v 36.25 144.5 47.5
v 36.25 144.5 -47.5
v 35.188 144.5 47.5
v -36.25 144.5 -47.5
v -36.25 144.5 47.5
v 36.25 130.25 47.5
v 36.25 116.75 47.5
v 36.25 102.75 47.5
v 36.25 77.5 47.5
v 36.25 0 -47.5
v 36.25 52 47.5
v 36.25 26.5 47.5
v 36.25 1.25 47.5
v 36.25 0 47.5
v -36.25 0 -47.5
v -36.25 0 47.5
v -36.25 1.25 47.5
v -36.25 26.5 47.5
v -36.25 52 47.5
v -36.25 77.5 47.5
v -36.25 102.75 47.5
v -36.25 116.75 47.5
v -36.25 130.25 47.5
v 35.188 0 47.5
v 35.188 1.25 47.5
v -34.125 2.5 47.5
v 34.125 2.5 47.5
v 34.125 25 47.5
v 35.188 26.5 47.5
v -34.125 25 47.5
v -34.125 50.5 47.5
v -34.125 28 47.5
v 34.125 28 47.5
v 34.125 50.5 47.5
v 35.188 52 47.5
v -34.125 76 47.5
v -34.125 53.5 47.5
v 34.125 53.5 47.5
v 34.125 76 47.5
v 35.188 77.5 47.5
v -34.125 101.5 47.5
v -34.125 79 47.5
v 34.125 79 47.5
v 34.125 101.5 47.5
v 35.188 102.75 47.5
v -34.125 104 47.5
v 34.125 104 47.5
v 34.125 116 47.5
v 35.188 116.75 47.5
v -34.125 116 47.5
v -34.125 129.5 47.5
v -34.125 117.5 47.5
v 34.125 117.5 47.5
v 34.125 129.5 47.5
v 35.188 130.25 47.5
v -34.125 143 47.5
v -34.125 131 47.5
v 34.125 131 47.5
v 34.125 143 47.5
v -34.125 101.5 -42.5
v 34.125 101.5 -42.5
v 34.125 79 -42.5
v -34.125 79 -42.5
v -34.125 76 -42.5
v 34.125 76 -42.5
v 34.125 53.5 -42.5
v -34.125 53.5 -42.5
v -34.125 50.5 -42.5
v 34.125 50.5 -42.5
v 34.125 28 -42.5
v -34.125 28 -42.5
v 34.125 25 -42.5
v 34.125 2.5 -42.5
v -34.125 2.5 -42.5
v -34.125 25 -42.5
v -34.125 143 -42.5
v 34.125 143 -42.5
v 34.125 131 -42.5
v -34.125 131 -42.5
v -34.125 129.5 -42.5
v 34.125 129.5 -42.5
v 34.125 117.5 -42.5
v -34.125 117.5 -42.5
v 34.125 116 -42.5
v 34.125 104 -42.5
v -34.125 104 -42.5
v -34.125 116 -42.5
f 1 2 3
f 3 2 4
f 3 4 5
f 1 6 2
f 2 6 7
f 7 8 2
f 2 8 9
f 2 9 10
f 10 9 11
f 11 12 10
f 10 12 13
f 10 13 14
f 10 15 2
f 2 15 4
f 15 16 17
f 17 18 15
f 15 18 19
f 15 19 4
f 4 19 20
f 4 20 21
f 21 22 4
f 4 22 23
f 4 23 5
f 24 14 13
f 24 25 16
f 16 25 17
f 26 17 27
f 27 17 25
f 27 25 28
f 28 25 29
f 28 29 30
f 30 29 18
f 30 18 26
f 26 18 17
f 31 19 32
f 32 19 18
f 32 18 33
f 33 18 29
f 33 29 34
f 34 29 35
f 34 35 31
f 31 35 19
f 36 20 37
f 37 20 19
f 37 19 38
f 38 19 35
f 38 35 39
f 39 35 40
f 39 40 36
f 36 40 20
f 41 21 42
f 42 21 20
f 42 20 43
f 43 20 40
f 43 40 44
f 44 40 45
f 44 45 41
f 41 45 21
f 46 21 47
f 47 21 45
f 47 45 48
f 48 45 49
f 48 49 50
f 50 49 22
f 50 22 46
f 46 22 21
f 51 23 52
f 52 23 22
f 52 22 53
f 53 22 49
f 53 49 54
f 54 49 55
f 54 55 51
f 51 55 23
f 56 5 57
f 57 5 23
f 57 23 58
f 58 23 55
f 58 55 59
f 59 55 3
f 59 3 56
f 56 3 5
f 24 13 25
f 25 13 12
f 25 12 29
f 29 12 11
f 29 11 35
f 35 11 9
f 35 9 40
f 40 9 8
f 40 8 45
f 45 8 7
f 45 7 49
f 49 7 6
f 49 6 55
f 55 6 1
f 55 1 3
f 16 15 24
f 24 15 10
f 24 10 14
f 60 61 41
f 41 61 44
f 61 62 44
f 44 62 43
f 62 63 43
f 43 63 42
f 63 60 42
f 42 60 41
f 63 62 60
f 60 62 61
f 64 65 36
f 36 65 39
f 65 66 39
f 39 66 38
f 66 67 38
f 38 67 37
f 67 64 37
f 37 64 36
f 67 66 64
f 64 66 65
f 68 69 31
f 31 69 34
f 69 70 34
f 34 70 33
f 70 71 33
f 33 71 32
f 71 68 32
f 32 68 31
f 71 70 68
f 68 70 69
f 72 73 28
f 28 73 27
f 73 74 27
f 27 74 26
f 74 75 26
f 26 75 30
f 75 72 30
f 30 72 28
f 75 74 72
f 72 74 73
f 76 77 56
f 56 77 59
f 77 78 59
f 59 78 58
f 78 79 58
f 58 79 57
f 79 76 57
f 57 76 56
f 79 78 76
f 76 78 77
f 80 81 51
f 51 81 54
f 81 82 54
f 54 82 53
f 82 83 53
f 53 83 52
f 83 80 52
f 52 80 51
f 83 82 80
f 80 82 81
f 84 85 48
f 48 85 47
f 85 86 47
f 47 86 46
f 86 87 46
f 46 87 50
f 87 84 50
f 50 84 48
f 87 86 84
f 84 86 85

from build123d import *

# Parameters (mm, degrees)
SKETCH1_W           = 72.5
SKETCH1_H           = 95
BOSS_EXTRUDE1_DEPTH = 104.5
SKETCH2_W           = 68.25
SKETCH2_H           = 22.5
CUT_EXTRUDE1_DEPTH  = 90
SKETCH3_W           = 72.5
SKETCH3_H           = 95
BOSS_EXTRUDE2_DEPTH = 175.5
SKETCH4_W           = 68.25
SKETCH4_H           = 12
CUT_EXTRUDE3_DEPTH  = 90


with BuildPart() as part:
    # Sketch1 → Boss-Extrude1 (new body)
    with BuildSketch(Plane(origin=(0, 0, 0), x_dir=(1, 0, 0), z_dir=(0, 1, 0))):
        Rectangle(SKETCH1_W, SKETCH1_H)
    extrude(amount=BOSS_EXTRUDE1_DEPTH)

    # Sketch2 → Cut-Extrude1 (cut)
    with BuildSketch(Plane.XY.offset(47.5)):
        with Locations((0, 13.75)):
            Rectangle(SKETCH2_W, SKETCH2_H)
        with Locations((0, 39.25)):
            Rectangle(SKETCH2_W, SKETCH2_H)
        with Locations((0, 64.75)):
            Rectangle(SKETCH2_W, SKETCH2_H)
        with Locations((0, 90.25)):
            Rectangle(SKETCH2_W, SKETCH2_H)
    extrude(amount=-CUT_EXTRUDE1_DEPTH, mode=Mode.SUBTRACT)

    # Sketch3 → Boss-Extrude2 (add)
    with BuildSketch(Plane(origin=(0, 104.5, 0), x_dir=(1, 0, 0), z_dir=(0, 1, 0))):
        Rectangle(SKETCH3_W, SKETCH3_H)
    extrude(amount=BOSS_EXTRUDE2_DEPTH)

    # Sketch4 → Cut-Extrude3 (cut)
    with BuildSketch(Plane.XY.offset(47.5)):
        with Locations((0, 110)):
            Rectangle(SKETCH4_W, SKETCH4_H)
        with Locations((0, 123.5)):
            Rectangle(SKETCH4_W, SKETCH4_H)
        with Locations((0, 137)):
            Rectangle(SKETCH4_W, SKETCH4_H)
        with Locations((0, 150.5)):
            Rectangle(SKETCH4_W, SKETCH4_H)
        with Locations((0, 164)):
            Rectangle(SKETCH4_W, SKETCH4_H)
        with Locations((0, 177.5)):
            Rectangle(SKETCH4_W, SKETCH4_H)
        with Locations((0, 191)):
            Rectangle(SKETCH4_W, SKETCH4_H)
        with Locations((0, 204.5)):
            Rectangle(SKETCH4_W, SKETCH4_H)
        with Locations((0, 218)):
            Rectangle(SKETCH4_W, SKETCH4_H)
        with Locations((0, 231.5)):
            Rectangle(SKETCH4_W, SKETCH4_H)
        with Locations((0, 245)):
            Rectangle(SKETCH4_W, SKETCH4_H)
        with Locations((0, 258.5)):
            Rectangle(SKETCH4_W, SKETCH4_H)
        with Locations((0, 272)):
            Rectangle(SKETCH4_W, SKETCH4_H)
    extrude(amount=-CUT_EXTRUDE3_DEPTH, mode=Mode.SUBTRACT)

    # Split1
    split(bisect_by=Plane(origin=(-34.125, 144.5, -42.5), x_dir=(0, 0, -1), z_dir=(0, -1, 0)), keep=Keep.TOP)


solid = part.part
